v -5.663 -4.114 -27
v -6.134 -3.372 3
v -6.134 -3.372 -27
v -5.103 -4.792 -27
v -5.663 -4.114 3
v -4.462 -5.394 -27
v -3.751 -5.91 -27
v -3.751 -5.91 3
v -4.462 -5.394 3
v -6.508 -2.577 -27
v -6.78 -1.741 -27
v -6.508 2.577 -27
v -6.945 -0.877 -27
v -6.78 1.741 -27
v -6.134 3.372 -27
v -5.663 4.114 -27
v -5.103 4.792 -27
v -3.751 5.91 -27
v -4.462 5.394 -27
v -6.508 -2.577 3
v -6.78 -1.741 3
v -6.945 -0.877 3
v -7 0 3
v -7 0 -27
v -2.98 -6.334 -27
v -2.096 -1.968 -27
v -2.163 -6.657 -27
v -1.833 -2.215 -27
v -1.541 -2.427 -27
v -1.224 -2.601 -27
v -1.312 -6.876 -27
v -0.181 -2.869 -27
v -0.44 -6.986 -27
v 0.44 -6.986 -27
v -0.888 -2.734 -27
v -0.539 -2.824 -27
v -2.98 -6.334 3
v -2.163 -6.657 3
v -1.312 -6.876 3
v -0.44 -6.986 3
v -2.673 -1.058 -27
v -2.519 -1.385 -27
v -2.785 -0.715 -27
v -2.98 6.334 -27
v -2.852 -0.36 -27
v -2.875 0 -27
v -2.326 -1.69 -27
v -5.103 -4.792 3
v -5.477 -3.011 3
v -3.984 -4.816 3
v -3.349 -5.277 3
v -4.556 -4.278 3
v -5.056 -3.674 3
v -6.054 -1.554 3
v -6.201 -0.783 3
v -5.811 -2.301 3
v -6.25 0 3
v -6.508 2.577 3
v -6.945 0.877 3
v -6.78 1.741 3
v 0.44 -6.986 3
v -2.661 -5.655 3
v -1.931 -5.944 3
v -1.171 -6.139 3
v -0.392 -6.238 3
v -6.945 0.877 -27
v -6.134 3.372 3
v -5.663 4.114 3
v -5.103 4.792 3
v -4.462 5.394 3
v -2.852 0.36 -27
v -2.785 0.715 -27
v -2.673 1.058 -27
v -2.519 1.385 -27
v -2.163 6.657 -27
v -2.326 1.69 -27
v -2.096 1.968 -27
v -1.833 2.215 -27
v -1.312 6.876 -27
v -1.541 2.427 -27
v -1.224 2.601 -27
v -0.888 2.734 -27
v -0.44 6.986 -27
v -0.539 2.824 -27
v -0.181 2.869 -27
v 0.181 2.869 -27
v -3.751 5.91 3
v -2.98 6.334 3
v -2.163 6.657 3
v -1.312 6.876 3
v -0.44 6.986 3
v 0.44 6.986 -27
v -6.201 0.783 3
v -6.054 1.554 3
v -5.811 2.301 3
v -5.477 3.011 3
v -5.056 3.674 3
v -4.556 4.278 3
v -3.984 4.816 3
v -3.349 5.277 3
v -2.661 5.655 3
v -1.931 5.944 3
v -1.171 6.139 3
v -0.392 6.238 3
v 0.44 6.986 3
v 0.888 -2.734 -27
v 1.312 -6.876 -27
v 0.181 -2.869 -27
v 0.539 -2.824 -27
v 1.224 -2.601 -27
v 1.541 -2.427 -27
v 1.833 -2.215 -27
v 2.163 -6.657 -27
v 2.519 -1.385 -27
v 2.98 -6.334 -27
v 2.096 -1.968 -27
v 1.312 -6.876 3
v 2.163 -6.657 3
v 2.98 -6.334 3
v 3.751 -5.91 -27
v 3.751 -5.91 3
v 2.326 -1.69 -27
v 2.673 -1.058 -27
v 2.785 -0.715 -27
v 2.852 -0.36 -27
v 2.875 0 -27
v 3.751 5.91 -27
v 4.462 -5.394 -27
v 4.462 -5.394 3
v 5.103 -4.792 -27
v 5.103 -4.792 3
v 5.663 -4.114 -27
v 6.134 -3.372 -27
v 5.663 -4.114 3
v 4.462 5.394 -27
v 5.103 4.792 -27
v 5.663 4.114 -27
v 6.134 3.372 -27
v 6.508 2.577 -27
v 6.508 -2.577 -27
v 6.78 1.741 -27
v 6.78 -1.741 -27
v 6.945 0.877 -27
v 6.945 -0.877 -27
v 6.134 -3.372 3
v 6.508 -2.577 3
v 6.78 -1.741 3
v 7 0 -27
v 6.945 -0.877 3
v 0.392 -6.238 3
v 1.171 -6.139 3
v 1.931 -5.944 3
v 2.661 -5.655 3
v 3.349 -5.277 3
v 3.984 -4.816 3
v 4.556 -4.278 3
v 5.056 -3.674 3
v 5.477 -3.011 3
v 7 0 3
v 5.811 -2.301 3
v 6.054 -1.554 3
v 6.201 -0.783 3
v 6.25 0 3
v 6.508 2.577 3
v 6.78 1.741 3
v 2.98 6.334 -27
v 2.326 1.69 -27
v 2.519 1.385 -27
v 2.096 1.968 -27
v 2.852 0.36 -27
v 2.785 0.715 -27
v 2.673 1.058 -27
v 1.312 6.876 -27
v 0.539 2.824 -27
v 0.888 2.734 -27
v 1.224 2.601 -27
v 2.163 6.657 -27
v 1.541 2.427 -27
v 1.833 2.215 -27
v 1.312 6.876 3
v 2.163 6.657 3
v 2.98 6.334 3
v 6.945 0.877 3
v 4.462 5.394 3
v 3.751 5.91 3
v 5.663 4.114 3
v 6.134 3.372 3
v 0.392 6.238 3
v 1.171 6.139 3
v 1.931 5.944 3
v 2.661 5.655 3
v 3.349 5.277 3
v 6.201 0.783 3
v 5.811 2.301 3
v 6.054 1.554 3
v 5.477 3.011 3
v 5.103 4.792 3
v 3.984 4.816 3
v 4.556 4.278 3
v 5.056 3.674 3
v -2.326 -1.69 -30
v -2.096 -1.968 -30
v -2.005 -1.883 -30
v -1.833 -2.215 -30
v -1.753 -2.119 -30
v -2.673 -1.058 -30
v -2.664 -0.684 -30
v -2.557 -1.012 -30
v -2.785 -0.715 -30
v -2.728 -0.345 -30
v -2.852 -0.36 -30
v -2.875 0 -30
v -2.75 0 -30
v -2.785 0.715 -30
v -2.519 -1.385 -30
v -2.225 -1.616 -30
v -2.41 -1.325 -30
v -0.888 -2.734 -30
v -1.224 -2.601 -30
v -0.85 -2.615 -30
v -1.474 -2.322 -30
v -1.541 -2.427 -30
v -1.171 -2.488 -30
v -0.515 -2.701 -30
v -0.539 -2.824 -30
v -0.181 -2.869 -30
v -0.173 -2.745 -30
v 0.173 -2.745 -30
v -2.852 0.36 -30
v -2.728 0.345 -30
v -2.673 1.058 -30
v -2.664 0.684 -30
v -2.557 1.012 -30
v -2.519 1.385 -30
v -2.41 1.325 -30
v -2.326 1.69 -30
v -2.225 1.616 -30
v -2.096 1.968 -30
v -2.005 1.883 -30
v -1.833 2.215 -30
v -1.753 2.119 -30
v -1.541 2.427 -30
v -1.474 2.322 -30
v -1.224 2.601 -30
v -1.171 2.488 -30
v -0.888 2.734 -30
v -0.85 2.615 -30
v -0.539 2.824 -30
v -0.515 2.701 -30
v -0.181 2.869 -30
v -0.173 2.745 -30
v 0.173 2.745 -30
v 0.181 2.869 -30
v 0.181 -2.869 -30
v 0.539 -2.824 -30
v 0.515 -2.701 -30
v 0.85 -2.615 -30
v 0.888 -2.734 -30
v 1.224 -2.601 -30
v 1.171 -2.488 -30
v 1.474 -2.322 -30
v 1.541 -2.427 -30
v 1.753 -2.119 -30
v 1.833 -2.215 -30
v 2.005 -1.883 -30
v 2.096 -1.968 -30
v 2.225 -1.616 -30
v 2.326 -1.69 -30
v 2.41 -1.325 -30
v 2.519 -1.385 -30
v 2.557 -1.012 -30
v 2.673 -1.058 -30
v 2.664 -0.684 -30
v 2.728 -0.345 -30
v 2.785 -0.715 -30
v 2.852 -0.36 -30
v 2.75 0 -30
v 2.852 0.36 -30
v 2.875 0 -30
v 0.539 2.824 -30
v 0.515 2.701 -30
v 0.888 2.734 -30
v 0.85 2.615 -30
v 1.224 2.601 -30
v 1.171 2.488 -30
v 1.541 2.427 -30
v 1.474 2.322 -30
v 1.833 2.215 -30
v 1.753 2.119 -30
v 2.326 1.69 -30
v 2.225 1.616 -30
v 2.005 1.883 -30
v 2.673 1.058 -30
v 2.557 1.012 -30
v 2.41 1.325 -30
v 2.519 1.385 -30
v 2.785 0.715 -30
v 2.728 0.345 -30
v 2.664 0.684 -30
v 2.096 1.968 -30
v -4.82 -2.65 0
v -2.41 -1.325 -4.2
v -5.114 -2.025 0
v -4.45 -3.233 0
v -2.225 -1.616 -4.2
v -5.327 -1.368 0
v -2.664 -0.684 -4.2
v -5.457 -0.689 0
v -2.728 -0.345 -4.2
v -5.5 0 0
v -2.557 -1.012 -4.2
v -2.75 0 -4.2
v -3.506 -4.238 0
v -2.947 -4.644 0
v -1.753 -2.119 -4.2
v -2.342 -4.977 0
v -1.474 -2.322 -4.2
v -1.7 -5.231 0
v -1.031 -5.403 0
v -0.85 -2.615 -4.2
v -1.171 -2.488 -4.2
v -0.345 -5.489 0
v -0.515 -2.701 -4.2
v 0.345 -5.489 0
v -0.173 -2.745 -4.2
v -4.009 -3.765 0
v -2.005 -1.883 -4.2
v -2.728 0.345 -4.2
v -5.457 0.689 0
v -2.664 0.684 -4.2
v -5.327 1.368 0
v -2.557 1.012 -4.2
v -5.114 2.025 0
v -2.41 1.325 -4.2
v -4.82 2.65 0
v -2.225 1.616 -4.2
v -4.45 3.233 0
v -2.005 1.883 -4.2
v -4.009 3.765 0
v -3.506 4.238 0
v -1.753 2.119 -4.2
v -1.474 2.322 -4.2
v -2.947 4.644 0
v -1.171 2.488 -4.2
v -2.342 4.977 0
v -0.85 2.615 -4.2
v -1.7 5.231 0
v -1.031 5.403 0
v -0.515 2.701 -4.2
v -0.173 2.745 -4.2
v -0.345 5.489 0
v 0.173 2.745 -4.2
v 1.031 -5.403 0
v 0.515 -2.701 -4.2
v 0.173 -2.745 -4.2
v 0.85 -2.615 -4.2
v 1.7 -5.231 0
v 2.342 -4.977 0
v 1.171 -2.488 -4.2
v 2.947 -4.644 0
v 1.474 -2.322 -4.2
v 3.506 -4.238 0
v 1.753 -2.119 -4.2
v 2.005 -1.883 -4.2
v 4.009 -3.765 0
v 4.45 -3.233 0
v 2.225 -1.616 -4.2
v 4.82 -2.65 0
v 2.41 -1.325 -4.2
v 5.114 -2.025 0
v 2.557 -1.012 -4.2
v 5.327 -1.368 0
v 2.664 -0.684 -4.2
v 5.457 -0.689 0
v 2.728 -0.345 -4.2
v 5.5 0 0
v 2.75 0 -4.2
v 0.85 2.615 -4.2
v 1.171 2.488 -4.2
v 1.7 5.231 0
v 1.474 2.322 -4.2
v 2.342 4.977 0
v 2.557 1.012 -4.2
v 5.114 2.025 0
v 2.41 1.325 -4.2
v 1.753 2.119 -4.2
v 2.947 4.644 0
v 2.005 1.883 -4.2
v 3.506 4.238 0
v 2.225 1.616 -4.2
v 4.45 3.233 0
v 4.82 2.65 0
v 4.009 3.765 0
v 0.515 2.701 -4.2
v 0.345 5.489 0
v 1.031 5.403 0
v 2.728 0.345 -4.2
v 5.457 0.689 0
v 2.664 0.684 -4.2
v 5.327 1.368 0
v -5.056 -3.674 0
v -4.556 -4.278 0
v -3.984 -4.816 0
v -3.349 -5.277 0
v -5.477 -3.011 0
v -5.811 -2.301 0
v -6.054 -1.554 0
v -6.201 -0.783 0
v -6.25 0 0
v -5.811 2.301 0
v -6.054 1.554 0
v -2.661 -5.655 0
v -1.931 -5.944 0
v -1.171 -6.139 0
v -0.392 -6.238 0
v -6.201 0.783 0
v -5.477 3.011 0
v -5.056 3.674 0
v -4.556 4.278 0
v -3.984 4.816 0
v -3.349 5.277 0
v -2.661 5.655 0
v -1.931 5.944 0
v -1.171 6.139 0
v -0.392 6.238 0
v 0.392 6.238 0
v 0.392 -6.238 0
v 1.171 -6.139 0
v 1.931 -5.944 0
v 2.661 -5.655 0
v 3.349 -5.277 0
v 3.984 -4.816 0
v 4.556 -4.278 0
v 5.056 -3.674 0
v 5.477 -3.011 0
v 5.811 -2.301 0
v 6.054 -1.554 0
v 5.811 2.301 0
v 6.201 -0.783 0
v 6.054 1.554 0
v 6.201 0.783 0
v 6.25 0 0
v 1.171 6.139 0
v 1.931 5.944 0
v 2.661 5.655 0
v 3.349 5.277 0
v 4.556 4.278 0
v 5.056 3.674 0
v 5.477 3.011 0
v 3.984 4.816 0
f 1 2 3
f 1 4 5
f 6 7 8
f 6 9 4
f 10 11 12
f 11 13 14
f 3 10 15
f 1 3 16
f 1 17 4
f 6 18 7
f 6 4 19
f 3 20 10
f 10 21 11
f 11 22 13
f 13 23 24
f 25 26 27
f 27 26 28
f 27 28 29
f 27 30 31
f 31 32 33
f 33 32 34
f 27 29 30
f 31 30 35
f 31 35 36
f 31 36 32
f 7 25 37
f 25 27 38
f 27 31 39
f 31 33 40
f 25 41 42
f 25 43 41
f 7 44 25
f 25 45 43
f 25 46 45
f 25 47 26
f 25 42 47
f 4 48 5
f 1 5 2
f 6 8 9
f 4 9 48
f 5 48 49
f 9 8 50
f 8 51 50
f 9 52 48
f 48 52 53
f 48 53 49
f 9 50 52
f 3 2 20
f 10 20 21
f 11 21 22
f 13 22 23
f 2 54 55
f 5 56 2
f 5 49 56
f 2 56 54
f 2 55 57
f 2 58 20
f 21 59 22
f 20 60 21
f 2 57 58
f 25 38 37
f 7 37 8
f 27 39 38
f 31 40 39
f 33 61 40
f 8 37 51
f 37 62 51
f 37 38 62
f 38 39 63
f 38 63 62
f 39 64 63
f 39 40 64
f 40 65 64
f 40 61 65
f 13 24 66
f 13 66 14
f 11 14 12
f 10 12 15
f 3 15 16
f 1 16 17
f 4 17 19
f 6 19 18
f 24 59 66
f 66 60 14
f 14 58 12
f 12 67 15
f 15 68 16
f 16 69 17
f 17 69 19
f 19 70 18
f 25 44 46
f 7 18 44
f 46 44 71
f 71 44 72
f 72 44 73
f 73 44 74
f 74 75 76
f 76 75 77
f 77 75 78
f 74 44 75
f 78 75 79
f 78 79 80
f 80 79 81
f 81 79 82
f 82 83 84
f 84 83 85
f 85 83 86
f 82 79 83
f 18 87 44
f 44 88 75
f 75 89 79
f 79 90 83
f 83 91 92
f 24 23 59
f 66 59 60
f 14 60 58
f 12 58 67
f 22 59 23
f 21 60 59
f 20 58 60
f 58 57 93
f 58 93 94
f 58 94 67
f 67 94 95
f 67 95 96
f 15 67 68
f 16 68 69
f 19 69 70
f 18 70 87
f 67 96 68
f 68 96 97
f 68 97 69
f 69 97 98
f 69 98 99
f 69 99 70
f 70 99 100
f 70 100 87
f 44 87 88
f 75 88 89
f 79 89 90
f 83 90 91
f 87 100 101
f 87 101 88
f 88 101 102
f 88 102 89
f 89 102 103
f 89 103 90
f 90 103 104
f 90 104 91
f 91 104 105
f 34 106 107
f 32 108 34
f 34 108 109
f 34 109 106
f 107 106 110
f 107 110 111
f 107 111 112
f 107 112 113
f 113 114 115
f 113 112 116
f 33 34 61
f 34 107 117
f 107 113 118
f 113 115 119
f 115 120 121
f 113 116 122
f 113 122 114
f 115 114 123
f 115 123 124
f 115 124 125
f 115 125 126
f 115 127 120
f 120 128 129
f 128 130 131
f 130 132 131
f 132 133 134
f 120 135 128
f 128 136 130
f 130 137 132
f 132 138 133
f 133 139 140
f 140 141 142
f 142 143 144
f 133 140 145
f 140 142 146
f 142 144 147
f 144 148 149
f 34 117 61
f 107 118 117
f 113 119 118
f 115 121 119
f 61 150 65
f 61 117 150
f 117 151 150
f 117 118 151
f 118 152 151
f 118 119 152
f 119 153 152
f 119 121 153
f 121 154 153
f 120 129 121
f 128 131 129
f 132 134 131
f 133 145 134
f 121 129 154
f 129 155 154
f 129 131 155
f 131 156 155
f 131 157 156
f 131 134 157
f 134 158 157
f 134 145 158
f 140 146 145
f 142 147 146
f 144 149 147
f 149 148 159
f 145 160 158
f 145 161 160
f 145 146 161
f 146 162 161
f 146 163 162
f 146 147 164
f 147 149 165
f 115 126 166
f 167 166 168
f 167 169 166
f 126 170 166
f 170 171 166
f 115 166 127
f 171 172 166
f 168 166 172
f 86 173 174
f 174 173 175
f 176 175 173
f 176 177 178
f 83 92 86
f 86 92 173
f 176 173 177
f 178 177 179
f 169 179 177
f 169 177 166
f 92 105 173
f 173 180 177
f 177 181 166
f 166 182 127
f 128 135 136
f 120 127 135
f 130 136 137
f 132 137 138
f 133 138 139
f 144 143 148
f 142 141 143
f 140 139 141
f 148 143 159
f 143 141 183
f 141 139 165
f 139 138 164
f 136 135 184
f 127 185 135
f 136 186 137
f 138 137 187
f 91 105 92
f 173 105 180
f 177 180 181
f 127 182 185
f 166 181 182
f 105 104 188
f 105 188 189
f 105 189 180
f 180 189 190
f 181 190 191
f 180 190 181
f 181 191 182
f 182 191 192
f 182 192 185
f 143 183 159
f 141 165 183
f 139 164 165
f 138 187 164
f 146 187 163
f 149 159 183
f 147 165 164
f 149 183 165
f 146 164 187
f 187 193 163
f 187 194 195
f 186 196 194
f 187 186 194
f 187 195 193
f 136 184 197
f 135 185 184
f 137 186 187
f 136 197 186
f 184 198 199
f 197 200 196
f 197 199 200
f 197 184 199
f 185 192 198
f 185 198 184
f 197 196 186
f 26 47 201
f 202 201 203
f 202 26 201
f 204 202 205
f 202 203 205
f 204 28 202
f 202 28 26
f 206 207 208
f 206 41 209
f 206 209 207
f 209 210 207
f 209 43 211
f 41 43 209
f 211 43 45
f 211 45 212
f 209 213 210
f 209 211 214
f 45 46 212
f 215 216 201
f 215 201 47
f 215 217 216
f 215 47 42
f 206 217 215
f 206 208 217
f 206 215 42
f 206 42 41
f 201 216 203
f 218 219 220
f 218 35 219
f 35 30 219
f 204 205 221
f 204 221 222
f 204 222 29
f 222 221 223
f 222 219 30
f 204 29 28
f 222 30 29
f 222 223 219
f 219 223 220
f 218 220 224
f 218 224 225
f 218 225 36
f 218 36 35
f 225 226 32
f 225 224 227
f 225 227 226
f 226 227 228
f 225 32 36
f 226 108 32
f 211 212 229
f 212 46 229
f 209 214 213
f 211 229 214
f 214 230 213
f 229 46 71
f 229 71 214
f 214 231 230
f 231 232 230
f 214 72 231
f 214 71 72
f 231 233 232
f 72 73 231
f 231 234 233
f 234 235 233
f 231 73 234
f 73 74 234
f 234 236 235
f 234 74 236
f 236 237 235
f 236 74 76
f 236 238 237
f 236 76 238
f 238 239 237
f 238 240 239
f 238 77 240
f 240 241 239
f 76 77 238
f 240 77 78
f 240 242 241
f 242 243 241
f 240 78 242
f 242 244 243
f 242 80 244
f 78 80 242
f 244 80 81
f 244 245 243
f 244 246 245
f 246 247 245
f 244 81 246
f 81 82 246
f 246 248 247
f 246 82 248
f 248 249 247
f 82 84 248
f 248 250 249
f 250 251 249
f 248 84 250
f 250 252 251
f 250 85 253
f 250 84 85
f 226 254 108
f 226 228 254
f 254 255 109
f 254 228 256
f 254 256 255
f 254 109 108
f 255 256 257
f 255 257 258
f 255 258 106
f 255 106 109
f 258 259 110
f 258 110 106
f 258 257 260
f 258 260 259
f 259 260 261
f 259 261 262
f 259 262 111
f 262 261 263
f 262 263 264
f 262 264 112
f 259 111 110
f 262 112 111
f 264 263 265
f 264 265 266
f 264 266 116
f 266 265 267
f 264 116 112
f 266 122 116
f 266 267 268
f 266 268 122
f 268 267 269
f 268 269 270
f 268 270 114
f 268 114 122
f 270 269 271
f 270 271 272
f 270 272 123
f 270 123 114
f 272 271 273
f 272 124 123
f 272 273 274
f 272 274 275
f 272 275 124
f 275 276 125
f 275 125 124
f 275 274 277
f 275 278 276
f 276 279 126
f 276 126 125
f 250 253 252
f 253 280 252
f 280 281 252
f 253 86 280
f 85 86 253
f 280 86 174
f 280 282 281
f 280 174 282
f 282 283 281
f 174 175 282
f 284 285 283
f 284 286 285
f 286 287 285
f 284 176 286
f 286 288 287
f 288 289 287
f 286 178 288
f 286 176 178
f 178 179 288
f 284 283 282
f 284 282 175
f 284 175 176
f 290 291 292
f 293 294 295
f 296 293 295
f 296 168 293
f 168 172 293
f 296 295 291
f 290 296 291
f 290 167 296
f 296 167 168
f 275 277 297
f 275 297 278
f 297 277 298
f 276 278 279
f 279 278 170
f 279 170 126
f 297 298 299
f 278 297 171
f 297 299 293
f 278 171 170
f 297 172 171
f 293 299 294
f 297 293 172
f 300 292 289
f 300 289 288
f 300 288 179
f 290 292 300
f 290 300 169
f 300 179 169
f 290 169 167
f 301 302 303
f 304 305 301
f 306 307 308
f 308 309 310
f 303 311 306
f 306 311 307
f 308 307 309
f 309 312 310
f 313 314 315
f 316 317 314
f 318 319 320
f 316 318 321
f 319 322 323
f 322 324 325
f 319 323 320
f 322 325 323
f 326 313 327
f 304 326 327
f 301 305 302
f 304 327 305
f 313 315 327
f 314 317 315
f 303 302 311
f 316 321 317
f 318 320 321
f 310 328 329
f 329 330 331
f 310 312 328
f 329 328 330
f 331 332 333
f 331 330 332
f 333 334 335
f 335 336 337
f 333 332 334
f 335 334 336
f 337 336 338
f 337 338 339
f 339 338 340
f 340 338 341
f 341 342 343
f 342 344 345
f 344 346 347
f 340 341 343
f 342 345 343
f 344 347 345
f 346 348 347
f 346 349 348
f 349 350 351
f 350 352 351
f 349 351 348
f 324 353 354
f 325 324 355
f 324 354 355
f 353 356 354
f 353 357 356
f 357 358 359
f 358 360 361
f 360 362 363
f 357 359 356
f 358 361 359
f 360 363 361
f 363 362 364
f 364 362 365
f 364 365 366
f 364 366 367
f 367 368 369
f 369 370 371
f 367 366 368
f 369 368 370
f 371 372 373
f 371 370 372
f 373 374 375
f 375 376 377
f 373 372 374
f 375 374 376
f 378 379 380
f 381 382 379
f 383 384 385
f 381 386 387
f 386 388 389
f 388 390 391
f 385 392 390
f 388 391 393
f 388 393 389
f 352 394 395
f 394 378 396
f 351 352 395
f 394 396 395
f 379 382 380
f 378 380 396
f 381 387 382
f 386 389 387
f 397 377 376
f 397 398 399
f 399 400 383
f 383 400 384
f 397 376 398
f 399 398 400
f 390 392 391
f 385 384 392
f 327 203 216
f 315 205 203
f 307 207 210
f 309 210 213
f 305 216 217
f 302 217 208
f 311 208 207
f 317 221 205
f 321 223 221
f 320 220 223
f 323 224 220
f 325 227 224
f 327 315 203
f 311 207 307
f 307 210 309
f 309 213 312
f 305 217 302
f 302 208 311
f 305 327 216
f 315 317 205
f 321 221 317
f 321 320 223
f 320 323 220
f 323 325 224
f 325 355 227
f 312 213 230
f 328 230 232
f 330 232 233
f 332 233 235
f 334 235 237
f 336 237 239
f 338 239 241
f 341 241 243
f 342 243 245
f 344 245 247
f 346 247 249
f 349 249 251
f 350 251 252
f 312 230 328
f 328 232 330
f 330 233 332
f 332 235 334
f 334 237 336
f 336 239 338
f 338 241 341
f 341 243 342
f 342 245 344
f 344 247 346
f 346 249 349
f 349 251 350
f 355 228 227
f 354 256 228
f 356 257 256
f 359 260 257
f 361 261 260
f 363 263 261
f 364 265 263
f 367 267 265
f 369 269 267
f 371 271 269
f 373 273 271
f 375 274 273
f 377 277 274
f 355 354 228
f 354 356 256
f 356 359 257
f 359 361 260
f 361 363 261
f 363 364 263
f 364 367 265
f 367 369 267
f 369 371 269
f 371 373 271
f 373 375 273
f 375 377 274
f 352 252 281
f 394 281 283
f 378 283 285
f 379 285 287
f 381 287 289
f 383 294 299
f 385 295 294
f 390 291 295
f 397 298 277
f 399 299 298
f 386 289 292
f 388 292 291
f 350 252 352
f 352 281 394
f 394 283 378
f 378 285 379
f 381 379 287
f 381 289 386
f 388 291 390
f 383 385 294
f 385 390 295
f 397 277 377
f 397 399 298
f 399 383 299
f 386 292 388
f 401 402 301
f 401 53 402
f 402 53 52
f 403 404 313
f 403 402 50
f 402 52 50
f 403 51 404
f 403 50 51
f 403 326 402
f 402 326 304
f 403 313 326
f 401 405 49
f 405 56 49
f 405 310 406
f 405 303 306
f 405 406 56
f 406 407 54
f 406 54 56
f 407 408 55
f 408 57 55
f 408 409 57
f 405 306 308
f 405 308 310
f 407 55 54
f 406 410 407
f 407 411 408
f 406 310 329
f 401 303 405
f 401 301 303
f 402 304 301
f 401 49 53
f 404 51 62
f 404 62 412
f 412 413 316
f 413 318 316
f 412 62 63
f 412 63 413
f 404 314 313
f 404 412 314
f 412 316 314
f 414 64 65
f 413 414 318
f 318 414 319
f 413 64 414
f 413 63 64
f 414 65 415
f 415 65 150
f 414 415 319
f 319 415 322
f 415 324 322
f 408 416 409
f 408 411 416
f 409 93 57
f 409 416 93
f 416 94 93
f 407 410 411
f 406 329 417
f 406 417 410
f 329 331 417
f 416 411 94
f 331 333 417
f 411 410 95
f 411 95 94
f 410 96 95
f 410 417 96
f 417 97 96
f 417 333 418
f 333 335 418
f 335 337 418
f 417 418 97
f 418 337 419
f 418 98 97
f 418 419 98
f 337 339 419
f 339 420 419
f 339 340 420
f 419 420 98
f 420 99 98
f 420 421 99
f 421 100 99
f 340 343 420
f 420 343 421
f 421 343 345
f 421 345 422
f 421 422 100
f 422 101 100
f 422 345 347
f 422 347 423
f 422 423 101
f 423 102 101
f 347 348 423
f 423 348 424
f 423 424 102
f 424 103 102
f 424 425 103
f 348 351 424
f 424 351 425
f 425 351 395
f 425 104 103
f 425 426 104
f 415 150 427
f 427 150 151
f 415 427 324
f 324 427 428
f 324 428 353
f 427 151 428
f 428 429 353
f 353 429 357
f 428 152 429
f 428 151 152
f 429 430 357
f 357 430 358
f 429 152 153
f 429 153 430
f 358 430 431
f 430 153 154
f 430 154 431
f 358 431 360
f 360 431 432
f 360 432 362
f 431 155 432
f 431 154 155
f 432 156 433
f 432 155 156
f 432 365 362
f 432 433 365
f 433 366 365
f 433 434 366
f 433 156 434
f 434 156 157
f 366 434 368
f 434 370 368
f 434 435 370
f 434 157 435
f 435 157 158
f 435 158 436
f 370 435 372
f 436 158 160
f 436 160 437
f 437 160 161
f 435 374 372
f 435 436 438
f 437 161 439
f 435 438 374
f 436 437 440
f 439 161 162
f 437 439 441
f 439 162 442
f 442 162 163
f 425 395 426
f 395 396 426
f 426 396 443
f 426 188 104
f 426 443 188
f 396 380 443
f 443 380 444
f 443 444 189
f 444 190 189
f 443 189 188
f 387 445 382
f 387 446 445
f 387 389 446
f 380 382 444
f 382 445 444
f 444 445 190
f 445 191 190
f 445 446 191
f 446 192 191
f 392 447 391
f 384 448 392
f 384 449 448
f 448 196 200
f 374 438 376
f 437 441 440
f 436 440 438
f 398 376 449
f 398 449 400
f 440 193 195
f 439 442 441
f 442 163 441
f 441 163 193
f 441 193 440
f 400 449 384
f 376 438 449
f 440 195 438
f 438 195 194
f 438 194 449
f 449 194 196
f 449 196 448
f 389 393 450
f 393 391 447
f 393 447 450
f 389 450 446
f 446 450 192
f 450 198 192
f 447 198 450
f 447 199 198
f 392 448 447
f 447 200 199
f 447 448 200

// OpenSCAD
$fn = 50;

difference() {
	union() {
		translate(v = [0, 0, -27.0]) {
			cylinder(h = 30, r = 7.0);
		}
		#translate(v = [0, 0, -30.0]) {
			cylinder(h = 30, r = 2.875);
		}
	}
	union() {
		translate(v = [0, 0, 0]) {
			rotate(a = [0, 0, 0]) {
				difference() {
					union() {
						translate(v = [0, 0, -30.0]) {
							cylinder(h = 30, r = 2.25);
						}
						translate(v = [0, 0, -4.2]) {
							cylinder(h = 4.2, r1 = 2.75, r2 = 5.5);
						}
						translate(v = [0, 0, -30.0]) {
							cylinder(h = 30, r = 2.75);
						}
						translate(v = [0, 0, -30.0]) {
							cylinder(h = 30, r = 2.25);
						}
					}
					union();
				}
			}
		}
		#cylinder(h = 3, r = 6.25);
	}
}
